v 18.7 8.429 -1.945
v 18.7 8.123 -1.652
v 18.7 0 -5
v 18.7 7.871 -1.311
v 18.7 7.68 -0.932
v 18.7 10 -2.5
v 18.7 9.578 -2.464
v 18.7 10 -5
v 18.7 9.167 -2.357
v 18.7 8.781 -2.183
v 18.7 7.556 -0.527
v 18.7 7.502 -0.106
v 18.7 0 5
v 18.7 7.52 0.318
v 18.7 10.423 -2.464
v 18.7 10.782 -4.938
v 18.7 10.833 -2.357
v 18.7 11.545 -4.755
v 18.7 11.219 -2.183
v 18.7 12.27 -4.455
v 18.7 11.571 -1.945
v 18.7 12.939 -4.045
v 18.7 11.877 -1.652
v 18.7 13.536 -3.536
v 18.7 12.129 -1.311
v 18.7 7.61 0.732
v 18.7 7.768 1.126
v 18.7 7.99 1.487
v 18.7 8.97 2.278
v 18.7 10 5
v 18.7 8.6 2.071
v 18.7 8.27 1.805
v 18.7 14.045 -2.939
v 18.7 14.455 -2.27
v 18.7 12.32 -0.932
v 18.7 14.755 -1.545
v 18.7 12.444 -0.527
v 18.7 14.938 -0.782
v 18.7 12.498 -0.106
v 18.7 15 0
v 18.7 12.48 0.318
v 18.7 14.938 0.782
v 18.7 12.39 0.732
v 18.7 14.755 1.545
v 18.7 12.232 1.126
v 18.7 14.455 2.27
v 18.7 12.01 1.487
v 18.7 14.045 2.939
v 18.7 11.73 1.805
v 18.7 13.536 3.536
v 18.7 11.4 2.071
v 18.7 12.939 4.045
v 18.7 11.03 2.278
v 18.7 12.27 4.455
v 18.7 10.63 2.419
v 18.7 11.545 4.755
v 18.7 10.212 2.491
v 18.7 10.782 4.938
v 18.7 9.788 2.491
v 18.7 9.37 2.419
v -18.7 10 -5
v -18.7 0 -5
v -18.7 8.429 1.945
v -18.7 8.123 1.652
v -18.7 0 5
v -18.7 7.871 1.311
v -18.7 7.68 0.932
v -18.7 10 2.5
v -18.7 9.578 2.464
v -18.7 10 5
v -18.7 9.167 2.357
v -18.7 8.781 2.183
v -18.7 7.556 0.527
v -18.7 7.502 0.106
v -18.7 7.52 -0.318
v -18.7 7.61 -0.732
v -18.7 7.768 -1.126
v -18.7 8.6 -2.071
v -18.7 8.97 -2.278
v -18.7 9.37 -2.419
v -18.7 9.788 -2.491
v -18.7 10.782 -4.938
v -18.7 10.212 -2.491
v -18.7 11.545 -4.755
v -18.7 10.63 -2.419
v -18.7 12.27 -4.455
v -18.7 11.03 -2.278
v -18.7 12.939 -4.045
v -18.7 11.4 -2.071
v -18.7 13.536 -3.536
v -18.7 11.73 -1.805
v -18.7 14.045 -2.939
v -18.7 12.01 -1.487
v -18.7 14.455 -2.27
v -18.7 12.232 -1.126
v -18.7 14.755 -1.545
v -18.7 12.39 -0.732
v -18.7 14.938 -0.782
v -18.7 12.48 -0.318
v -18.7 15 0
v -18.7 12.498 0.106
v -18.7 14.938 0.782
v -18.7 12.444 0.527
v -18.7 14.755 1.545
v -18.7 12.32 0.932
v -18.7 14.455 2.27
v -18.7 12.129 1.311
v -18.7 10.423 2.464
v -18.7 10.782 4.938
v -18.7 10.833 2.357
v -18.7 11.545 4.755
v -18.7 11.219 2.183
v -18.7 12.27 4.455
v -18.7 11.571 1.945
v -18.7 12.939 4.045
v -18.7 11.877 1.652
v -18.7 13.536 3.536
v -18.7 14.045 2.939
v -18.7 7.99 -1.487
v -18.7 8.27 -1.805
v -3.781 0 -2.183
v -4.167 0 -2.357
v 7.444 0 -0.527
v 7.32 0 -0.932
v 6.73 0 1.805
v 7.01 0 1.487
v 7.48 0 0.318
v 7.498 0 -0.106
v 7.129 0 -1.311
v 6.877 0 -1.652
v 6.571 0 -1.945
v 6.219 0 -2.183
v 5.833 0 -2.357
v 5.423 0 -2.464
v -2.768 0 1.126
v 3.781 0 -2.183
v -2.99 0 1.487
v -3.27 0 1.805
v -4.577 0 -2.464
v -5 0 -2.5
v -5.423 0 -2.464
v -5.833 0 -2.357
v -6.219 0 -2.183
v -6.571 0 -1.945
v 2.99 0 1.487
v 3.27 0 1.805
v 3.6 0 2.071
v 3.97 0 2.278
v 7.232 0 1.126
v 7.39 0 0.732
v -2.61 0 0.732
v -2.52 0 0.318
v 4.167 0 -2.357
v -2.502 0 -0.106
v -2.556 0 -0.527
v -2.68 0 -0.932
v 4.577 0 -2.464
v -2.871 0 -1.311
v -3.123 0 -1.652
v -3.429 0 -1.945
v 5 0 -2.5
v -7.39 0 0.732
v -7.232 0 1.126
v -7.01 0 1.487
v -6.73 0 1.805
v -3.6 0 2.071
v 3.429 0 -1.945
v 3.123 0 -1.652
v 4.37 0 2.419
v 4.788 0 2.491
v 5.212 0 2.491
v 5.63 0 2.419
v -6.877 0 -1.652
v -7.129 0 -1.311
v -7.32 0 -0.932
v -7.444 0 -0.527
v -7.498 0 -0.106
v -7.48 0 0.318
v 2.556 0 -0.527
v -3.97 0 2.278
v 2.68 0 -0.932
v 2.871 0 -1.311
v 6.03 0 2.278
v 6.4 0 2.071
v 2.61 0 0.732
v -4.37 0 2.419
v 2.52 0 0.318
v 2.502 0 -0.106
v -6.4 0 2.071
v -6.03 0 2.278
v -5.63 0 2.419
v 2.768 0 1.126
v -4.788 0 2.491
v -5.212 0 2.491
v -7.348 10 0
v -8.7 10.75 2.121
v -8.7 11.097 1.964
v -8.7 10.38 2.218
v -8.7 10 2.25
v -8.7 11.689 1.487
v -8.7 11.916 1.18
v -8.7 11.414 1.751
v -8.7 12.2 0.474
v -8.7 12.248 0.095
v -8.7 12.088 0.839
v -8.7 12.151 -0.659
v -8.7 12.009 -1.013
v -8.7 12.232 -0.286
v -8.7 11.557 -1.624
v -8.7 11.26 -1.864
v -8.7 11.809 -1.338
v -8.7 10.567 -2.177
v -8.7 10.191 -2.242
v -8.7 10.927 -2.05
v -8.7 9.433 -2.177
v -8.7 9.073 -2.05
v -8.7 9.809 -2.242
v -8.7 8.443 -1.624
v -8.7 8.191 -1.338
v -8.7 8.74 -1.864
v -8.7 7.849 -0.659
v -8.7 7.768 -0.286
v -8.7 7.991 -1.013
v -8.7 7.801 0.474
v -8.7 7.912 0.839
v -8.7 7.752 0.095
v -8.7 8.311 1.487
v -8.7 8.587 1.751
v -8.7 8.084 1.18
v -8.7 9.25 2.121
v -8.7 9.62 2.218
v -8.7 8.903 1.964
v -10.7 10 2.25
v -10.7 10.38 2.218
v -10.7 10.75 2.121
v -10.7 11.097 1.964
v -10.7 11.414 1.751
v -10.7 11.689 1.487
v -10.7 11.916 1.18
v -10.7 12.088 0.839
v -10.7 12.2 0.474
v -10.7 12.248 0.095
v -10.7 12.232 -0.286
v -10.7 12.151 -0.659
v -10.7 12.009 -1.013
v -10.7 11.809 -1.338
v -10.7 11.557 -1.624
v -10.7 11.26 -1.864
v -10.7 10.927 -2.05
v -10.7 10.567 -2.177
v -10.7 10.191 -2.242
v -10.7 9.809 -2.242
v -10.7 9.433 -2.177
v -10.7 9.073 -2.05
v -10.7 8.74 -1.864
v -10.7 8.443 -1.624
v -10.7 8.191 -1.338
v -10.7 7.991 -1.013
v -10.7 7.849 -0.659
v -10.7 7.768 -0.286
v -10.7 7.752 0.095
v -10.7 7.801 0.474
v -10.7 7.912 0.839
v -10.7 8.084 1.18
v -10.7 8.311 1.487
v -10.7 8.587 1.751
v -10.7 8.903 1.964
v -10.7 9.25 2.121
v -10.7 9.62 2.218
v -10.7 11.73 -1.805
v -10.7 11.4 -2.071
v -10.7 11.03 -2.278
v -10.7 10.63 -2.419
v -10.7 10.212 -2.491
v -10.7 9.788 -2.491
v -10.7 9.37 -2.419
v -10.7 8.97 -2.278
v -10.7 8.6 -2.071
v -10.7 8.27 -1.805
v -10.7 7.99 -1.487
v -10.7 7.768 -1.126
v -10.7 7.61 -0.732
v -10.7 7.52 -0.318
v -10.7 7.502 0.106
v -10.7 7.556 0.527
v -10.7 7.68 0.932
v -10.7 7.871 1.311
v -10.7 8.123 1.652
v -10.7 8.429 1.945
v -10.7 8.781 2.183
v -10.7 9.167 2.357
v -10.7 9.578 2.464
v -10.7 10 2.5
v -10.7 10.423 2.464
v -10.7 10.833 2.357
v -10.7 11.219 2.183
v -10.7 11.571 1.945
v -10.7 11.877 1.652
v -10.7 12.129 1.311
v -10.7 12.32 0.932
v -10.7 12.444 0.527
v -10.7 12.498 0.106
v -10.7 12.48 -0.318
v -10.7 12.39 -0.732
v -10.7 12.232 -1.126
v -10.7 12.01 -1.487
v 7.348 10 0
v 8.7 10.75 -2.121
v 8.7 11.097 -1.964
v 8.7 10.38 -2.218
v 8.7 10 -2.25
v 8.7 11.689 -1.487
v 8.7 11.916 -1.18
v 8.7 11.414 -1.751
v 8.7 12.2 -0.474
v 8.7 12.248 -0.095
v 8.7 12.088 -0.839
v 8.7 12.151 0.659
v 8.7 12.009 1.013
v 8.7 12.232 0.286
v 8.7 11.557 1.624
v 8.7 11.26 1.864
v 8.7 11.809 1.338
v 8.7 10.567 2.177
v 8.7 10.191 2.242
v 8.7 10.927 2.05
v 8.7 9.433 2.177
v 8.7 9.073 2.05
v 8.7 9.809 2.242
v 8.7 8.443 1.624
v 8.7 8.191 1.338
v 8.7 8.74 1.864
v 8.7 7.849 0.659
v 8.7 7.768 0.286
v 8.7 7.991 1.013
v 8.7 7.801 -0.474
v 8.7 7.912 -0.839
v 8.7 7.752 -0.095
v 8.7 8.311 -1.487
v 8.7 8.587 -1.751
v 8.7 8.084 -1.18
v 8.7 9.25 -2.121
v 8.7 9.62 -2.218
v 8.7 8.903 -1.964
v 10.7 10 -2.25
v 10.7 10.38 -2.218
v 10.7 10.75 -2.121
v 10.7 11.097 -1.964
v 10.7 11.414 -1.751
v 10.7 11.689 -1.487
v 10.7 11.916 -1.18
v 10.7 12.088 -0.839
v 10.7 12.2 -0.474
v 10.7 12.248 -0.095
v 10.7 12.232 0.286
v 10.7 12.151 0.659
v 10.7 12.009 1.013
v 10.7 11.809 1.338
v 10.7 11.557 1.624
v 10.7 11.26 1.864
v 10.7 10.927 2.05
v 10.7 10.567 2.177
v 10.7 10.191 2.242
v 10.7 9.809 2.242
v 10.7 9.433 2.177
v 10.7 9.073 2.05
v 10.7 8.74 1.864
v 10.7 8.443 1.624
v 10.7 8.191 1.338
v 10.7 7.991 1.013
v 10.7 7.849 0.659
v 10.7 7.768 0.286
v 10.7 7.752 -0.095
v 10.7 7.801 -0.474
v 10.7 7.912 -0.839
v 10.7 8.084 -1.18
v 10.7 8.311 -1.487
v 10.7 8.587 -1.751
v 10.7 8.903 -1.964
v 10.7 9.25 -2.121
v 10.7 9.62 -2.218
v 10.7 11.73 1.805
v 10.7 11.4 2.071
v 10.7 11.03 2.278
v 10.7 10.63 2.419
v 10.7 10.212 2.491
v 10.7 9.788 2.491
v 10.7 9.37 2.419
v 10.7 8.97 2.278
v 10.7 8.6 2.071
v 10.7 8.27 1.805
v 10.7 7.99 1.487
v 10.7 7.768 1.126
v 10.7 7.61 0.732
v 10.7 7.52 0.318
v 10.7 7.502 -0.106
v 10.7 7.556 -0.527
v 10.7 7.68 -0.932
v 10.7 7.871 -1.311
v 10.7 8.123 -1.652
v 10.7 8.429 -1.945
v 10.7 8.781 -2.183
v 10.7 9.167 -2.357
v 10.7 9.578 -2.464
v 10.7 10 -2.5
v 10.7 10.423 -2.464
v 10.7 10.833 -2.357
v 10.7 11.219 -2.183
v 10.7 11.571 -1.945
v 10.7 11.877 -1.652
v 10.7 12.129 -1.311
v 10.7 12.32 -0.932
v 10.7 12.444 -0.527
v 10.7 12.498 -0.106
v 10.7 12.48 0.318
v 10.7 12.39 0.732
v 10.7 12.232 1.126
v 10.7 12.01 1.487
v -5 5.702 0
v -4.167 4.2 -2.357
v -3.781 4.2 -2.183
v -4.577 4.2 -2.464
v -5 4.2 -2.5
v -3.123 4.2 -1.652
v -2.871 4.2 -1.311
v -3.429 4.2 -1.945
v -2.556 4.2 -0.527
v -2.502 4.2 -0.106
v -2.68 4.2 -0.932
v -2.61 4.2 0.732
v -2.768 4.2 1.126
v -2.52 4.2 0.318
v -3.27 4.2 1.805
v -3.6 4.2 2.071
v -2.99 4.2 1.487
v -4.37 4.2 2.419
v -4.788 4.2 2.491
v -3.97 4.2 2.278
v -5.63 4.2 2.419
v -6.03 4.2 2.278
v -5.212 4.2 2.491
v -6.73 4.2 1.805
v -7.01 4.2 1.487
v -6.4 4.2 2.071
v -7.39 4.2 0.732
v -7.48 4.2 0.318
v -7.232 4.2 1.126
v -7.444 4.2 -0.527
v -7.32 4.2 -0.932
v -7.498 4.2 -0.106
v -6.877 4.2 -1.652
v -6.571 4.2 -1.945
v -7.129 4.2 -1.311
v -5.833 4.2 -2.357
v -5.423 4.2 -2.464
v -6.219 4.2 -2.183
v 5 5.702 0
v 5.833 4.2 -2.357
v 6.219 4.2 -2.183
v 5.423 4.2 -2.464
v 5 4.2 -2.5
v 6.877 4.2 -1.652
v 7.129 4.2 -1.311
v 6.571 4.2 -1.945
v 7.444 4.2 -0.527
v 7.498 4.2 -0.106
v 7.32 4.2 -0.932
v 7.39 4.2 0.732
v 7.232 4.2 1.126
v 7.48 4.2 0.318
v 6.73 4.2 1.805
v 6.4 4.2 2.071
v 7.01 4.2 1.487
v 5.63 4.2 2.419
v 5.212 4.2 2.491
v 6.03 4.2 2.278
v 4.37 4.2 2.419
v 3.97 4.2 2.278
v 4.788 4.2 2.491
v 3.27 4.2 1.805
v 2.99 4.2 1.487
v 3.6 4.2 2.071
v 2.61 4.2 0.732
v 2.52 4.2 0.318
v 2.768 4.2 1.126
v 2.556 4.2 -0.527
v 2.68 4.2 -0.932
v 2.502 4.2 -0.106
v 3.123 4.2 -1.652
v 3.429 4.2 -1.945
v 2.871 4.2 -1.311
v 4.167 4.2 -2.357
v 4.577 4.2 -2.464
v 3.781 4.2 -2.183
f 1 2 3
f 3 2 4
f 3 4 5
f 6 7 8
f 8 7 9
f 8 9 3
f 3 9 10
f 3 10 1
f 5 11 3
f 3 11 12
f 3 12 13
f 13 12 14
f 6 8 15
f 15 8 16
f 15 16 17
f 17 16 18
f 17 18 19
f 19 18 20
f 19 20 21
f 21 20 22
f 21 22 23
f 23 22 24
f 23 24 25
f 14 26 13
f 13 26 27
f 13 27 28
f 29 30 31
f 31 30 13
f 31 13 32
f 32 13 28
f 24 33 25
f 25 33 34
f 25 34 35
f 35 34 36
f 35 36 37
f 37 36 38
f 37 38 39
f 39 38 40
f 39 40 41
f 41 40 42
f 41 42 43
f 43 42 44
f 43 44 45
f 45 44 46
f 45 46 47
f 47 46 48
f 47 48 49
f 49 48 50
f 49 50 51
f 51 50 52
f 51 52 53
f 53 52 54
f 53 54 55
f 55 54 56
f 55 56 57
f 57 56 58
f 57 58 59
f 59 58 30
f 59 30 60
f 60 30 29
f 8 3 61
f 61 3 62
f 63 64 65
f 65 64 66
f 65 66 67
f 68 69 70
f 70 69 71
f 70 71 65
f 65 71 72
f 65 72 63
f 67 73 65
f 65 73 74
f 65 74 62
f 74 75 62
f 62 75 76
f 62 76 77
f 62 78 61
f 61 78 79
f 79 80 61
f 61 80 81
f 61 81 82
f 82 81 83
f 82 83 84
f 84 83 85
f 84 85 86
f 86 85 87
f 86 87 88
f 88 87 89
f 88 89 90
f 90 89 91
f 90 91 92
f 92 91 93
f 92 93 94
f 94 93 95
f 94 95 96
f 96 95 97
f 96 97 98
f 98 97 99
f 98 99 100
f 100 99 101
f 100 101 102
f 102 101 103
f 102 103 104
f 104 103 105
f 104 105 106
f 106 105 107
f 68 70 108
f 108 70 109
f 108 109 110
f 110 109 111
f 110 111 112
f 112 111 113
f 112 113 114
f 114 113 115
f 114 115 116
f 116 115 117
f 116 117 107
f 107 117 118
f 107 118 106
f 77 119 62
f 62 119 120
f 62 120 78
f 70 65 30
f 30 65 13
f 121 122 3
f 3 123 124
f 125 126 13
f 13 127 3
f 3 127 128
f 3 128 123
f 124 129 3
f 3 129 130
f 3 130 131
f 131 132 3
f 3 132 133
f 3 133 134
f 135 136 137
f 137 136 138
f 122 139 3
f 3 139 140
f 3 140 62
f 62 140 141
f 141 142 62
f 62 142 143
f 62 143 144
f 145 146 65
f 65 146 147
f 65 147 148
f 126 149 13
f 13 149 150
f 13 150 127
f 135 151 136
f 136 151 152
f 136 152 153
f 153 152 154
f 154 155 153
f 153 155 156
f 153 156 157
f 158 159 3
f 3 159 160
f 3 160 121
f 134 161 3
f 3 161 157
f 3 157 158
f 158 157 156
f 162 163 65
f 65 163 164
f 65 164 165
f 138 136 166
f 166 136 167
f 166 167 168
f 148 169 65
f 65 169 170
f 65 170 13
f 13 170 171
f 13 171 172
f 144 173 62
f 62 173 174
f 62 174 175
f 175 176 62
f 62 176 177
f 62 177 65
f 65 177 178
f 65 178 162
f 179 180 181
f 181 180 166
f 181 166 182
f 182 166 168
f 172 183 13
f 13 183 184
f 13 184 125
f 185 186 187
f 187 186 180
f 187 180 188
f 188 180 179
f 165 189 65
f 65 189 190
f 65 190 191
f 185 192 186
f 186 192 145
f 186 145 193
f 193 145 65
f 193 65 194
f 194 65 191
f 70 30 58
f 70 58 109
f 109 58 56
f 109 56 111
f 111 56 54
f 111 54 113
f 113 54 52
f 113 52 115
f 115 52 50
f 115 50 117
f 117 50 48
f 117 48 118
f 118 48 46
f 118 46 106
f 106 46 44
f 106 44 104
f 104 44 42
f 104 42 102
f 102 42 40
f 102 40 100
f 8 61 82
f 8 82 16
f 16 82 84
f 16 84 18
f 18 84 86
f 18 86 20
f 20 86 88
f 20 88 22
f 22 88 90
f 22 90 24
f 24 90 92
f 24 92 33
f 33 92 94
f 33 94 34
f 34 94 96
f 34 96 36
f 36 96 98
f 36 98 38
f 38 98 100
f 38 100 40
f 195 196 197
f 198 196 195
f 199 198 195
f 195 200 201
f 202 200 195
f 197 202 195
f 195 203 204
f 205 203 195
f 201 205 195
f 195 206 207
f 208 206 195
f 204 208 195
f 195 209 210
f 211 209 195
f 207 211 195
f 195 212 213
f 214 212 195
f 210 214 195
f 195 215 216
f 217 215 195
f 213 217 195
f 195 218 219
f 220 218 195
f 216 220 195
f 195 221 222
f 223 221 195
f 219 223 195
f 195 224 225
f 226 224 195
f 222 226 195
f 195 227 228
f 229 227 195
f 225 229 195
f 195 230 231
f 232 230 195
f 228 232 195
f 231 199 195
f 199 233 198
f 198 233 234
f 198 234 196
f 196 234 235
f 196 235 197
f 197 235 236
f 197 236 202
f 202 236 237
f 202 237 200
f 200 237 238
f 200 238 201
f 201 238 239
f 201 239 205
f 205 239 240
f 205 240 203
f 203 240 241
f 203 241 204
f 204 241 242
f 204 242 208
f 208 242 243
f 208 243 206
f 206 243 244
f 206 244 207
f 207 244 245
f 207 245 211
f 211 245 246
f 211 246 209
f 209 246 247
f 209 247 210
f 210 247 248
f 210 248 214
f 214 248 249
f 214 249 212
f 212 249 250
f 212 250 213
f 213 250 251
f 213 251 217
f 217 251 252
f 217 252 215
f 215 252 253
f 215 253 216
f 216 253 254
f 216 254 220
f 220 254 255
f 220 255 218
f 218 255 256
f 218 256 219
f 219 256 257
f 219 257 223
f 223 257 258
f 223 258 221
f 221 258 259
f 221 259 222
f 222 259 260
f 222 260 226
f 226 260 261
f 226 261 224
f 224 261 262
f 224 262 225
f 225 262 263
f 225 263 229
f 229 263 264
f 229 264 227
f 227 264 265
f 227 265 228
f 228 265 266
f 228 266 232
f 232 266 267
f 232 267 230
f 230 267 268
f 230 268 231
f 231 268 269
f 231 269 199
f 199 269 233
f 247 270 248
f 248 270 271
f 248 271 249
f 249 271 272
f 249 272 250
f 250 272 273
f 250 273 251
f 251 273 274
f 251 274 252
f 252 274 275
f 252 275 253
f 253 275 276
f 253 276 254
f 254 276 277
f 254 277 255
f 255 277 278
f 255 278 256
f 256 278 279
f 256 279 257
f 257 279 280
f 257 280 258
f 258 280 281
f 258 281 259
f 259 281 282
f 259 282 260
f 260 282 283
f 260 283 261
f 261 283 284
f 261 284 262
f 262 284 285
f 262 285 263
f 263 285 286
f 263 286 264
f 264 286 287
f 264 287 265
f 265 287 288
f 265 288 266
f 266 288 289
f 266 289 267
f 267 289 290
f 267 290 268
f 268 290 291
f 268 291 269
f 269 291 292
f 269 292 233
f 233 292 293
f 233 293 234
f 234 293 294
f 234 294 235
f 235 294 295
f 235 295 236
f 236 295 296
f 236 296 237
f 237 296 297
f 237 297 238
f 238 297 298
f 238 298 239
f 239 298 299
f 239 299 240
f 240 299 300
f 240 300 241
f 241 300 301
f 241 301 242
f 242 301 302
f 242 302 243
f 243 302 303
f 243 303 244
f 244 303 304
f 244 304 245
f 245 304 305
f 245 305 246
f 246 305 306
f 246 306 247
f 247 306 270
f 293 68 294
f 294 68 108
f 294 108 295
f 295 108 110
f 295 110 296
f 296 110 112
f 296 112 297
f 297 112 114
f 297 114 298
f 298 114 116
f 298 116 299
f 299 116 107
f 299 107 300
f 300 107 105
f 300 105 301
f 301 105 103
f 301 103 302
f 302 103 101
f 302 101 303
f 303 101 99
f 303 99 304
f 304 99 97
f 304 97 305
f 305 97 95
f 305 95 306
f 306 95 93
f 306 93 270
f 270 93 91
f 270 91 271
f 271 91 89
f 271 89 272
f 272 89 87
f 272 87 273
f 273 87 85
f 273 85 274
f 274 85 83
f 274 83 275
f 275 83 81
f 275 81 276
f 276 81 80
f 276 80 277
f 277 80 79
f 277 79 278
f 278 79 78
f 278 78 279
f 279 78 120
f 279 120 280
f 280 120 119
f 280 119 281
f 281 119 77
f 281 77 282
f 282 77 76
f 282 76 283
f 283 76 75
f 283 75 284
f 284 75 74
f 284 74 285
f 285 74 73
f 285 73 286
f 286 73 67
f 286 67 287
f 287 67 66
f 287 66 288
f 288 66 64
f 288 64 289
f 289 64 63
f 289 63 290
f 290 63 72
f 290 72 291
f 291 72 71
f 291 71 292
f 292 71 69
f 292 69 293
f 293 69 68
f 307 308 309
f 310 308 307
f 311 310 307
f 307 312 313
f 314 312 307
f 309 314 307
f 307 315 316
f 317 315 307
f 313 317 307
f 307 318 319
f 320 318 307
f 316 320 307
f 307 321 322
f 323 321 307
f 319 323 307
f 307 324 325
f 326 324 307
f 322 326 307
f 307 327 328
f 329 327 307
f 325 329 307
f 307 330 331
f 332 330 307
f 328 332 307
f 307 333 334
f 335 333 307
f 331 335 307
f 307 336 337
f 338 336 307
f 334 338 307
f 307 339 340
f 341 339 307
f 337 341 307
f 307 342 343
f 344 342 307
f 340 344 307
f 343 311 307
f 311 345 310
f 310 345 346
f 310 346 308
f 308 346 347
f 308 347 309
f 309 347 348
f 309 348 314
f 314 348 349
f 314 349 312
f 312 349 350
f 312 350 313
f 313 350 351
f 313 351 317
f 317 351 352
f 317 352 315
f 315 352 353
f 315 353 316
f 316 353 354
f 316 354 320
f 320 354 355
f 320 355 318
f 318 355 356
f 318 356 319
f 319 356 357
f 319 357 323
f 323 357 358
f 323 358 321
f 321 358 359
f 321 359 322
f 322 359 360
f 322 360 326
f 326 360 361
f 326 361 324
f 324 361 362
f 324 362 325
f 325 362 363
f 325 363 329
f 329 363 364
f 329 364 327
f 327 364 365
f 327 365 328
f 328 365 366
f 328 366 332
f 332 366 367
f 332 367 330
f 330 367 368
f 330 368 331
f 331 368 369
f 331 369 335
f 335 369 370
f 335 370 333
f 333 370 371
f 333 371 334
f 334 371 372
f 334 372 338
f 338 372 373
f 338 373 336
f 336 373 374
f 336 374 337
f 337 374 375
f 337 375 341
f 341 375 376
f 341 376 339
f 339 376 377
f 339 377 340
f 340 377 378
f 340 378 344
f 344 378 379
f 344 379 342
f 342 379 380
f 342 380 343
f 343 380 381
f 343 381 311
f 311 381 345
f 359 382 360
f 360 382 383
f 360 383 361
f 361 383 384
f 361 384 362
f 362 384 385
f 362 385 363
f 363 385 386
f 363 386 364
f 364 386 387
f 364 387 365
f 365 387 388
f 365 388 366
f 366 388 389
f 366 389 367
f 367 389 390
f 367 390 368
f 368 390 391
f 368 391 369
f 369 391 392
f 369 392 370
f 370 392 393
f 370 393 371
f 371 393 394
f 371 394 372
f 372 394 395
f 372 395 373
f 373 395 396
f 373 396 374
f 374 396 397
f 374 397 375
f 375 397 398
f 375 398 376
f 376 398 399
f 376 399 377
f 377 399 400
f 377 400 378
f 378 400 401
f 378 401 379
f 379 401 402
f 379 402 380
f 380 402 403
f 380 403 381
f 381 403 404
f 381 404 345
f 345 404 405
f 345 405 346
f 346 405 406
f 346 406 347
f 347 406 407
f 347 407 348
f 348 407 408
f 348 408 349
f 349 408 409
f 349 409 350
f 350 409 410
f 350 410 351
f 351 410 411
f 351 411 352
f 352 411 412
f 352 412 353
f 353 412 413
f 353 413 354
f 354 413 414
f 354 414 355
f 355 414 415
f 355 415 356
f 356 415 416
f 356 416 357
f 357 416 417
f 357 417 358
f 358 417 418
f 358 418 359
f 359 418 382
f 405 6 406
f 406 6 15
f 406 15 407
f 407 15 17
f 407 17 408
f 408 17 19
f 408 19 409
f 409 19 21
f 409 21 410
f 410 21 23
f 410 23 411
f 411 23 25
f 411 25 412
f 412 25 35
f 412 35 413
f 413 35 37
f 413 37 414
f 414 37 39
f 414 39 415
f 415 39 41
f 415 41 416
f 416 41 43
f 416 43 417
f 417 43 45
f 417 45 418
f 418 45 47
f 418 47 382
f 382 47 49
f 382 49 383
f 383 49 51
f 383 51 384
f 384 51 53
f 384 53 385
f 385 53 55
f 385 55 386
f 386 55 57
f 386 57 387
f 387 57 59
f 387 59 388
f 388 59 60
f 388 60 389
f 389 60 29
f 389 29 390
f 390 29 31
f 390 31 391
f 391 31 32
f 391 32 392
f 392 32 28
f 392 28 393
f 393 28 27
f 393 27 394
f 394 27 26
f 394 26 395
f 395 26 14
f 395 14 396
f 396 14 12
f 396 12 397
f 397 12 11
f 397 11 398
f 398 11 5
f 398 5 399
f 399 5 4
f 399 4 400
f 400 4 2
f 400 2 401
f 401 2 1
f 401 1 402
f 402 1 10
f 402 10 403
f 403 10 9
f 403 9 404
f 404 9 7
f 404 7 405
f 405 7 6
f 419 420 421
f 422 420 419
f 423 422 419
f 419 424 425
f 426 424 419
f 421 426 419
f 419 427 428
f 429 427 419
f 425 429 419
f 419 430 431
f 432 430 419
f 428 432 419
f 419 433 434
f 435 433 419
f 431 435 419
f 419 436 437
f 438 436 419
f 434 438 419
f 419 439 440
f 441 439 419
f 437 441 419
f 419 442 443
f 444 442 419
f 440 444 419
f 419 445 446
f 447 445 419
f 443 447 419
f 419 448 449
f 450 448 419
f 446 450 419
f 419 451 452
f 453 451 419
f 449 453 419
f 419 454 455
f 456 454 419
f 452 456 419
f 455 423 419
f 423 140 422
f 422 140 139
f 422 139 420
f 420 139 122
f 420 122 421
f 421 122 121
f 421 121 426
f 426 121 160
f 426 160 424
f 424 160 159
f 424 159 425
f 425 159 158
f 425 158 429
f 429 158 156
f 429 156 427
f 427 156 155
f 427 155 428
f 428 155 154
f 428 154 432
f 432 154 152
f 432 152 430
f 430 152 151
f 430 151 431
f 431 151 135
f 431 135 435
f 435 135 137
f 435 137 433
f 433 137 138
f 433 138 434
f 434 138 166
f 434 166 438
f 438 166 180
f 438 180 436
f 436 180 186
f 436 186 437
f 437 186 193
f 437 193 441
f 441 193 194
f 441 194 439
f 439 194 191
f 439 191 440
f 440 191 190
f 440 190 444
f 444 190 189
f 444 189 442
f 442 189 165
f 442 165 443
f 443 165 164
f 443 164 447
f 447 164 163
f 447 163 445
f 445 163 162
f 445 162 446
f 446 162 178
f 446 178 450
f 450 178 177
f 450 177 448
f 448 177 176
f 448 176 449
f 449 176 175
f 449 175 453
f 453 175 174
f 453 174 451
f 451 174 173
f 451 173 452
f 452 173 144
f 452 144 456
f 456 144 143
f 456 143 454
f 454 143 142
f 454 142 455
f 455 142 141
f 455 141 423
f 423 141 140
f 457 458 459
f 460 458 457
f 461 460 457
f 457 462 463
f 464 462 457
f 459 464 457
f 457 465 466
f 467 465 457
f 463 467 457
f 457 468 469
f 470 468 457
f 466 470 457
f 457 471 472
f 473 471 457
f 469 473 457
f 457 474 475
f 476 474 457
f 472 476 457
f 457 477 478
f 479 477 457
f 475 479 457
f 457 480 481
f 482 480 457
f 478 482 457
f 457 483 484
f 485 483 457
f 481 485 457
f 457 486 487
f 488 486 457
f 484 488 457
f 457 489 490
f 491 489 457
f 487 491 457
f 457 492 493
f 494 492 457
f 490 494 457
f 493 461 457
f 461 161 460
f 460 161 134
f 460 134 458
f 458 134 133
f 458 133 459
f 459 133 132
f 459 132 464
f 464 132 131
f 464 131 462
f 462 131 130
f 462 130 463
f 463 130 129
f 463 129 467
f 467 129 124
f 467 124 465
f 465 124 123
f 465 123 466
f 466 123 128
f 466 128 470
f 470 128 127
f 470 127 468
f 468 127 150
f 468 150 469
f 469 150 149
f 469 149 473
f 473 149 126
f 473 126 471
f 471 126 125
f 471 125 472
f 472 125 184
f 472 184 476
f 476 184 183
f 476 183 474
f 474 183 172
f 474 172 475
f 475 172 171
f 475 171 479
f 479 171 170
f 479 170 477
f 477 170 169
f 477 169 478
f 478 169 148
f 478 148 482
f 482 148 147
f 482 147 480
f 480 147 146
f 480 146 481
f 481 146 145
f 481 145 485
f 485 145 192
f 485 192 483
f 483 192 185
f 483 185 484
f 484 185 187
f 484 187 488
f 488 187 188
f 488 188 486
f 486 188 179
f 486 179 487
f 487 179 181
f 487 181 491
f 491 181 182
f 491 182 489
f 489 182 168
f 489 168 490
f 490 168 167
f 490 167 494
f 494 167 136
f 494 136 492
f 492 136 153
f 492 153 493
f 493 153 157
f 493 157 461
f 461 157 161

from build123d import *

# Parameters (mm, degrees)
SKETCH1_W                 = 37.4
SKETCH1_H                 = 10
BOSS_EXTRUDE1_DEPTH       = 15
FILLET1_R                 = 5
F_1_0MM_DOWEL_HOLE1_D     = 5
F_1_0MM_DOWEL_HOLE1_DEPTH = 4.2
F_1_0MM_DOWEL_HOLE1_TIP   = 1.502151548


with BuildPart() as part:
    # Sketch1 → Boss-Extrude1 (new body)
    with BuildSketch(Plane(origin=(0, 0, 0), x_dir=(1, 0, 0), z_dir=(0, 1, 0))):
        Rectangle(SKETCH1_W, SKETCH1_H)
    extrude(amount=BOSS_EXTRUDE1_DEPTH)

    # Fillet1
    fillet1_edges = [part.edges().sort_by_distance(p)[0] for p in [
        (0, 15, -5),
        (0, 15, 5),
    ]]
    fillet(fillet1_edges, radius=FILLET1_R - 0.0001)  # a hair under: the kernel refuses the full size

    # Sketch11 → CBORE for M5 Hex Head Bolt2 (revolve, cut)
    with BuildSketch(Plane(origin=(-18.7, 10, 0), x_dir=(0, 0, 1), z_dir=(0, 1, 0))):
        Polygon((0, 0), (0, 11.351936393), (2.25, 10), (2.25, 8), (2.5, 8), (2.5, 0), align=None)
    cbore_for_m5_hex_head_bolt2 = revolve(axis=Axis((-25.05, 10, 0), (1, 0, 0)), mode=Mode.SUBTRACT)

    # Mirror1: CBORE for M5 Hex Head Bolt2 across plane
    add(cbore_for_m5_hex_head_bolt2.mirror(Plane(origin=(0, 0, 0), x_dir=(0, 0, 1), z_dir=(1, 0, 0))), mode=Mode.SUBTRACT)

    # Ø1.0mm Dowel Hole1
    with Locations(Plane(origin=(0, 0, 0), x_dir=(-1, 0, 0), z_dir=(0, -1, 0))):
        with Locations((-5, 0), (5, 0)):
            Hole(F_1_0MM_DOWEL_HOLE1_D / 2, depth=F_1_0MM_DOWEL_HOLE1_DEPTH)
            with Locations((0, 0, -(F_1_0MM_DOWEL_HOLE1_DEPTH + F_1_0MM_DOWEL_HOLE1_TIP / 2))):  # 118° drill point
                Cone(0, F_1_0MM_DOWEL_HOLE1_D / 2, F_1_0MM_DOWEL_HOLE1_TIP, mode=Mode.SUBTRACT)


solid = part.part
